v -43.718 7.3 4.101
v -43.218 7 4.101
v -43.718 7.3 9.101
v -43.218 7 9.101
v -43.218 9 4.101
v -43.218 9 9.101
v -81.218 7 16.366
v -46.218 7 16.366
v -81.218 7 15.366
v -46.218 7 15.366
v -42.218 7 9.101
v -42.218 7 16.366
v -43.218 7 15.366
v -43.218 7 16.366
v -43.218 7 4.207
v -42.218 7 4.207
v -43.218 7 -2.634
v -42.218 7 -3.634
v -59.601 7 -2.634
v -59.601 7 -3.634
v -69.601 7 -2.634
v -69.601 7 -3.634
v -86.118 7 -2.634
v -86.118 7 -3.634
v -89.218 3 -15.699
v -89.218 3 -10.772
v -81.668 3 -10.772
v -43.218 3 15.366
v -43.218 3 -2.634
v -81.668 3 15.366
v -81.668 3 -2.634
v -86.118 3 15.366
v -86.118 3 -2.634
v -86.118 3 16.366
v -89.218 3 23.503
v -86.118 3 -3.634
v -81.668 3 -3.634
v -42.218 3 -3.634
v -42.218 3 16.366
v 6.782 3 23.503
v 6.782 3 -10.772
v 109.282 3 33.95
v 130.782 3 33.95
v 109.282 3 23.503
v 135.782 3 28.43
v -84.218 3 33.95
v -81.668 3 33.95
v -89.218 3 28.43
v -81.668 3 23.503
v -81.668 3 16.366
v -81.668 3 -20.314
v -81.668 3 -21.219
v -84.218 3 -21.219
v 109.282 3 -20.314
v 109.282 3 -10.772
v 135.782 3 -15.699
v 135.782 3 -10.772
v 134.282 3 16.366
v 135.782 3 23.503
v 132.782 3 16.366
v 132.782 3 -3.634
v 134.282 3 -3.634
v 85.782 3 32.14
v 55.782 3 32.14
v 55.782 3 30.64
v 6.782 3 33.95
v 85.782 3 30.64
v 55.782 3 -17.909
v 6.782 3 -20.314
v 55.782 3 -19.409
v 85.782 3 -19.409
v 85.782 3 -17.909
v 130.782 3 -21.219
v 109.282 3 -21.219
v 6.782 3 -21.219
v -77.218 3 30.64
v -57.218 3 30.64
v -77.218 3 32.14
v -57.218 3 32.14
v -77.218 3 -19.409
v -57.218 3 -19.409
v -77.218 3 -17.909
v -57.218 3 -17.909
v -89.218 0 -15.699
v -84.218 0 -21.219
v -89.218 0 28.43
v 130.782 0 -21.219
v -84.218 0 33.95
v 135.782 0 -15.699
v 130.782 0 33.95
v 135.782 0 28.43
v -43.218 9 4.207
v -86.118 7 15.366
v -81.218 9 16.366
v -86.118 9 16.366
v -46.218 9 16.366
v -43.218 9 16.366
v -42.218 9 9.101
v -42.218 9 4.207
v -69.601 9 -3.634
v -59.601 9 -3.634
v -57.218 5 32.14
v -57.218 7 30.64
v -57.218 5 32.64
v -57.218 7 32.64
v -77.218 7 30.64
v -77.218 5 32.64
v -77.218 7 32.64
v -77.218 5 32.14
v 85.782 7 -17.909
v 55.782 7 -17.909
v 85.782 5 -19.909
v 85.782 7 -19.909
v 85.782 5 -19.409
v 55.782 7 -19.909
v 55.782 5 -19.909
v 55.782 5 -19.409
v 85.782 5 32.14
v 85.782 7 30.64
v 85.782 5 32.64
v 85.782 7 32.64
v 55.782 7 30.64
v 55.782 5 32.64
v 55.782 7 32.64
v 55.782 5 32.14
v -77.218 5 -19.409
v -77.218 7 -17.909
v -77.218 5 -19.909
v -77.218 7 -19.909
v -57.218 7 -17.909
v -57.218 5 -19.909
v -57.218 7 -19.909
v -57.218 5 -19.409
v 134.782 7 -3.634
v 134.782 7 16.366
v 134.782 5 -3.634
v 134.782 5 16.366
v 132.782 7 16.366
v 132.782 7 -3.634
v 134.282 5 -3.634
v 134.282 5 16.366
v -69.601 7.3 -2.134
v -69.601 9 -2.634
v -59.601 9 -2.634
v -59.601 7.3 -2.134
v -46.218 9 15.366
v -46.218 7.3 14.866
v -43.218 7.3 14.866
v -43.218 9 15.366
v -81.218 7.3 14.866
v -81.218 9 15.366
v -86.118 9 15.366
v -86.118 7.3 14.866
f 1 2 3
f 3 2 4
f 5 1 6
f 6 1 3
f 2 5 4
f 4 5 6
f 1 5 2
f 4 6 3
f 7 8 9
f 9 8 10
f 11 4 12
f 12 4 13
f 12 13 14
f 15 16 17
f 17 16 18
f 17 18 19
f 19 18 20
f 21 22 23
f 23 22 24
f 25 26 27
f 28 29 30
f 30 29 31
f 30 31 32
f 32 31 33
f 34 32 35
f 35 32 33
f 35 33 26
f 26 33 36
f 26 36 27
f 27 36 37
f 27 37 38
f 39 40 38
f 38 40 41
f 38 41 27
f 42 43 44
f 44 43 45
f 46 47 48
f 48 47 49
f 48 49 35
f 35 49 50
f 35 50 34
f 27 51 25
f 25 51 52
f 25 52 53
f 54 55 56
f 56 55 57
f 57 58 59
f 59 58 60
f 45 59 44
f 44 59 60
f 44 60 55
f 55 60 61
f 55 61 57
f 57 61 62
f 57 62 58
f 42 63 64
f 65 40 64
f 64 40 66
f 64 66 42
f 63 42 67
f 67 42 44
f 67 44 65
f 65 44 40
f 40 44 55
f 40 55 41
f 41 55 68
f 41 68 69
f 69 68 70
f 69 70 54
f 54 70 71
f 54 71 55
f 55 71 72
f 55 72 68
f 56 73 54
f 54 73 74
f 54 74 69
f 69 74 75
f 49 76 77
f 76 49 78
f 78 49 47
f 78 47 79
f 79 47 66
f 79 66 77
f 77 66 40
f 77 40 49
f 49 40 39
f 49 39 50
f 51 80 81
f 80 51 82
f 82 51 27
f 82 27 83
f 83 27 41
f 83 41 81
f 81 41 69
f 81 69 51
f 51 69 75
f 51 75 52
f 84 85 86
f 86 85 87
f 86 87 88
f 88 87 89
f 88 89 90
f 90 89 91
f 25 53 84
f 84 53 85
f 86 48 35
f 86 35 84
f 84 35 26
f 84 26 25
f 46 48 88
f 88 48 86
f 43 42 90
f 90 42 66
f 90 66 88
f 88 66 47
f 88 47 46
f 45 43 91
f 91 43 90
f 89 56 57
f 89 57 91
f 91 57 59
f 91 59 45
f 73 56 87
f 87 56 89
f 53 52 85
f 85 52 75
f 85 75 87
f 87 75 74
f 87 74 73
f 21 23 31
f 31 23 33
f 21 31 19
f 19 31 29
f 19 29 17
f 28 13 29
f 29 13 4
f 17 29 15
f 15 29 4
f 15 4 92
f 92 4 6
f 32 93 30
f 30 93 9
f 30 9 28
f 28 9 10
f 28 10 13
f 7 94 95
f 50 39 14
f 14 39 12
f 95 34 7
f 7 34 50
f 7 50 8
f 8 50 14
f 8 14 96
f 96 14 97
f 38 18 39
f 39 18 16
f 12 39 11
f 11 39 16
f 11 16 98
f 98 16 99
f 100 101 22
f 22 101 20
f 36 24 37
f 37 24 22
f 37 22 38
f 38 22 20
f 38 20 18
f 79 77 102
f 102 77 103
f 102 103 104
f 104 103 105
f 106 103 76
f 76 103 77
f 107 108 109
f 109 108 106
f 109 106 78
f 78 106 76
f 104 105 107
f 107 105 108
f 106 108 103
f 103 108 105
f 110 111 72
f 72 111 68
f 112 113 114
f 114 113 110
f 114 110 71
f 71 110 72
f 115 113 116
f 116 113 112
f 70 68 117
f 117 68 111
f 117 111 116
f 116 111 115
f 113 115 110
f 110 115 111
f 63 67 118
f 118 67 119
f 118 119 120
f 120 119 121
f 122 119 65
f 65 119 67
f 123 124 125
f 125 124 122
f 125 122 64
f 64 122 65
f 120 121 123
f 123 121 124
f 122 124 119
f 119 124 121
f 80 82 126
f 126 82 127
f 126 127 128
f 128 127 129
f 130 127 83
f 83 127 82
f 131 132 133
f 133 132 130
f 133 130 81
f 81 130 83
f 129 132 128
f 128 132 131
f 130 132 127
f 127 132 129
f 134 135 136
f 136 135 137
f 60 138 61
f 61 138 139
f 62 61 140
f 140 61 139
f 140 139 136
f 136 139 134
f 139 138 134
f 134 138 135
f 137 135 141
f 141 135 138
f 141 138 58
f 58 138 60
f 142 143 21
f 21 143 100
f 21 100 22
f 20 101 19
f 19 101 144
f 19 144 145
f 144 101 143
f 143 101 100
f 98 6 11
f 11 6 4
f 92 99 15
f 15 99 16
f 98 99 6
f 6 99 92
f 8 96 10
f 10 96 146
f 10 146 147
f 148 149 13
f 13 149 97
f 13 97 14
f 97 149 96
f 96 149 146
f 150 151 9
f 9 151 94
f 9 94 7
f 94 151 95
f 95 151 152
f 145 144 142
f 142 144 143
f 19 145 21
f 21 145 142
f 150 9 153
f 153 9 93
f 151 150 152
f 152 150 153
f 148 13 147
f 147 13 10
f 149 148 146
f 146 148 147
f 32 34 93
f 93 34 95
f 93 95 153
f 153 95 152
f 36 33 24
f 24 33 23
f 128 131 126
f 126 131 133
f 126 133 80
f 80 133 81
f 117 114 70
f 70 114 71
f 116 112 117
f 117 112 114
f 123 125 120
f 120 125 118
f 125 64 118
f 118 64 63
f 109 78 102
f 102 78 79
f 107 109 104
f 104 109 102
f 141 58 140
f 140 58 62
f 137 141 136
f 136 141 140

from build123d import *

# Parameters (mm, degrees)
SALIENTE_EXTRUIR1_DEPTH  = 3
CROQUIS2_W               = 2
CROQUIS2_H               = 20
CROQUIS2_W_2             = 20
CROQUIS2_H_2             = 2
CROQUIS2_W_3             = 30
SALIENTE_EXTRUIR2_DEPTH  = 4
CROQUIS3_W               = 10
CROQUIS3_H               = 1
CROQUIS3_W_2             = 1
CROQUIS3_H_2             = 4.894277734
CROQUIS3_W_3             = 3
CROQUIS3_W_4             = 5
SALIENTE_EXTRUIR3_DEPTH  = 2
SALIENTE_EXTRUIR4_DEPTH  = 10
SALIENTE_EXTRUIR8_DEPTH  = 5
SALIENTE_EXTRUIR9_DEPTH  = 5
SALIENTE_EXTRUIR10_DEPTH = 3
CROQUIS8_W               = 20
CROQUIS8_H               = 6
CORTAR_EXTRUIR1_DEPTH    = 0.1
CROQUIS10_W              = 0.5
CROQUIS10_H              = 2
CORTAR_EXTRUIR2_DEPTH    = 199.1
CROQUIS11_W              = 0.5
CROQUIS11_H              = 2
CORTAR_EXTRUIR3_DEPTH    = 199.1
CROQUIS12_W              = 0.5
CROQUIS12_H              = 2
CORTAR_EXTRUIR4_DEPTH    = 199.1


with BuildPart() as part:
    # Croquis1 → Saliente-Extruir1 (new body)
    with BuildSketch(Plane(origin=(0, 0, 0), x_dir=(1, 0, 0), z_dir=(0, 1, 0))):
        Polygon((-84.217677887, 21.218806135), (130.782322113, 21.218806135), (135.782322113, 15.698806135), (135.782322113, -28.430089815), (130.782322113, -33.950089815), (-84.217677887, -33.950089815), (-89.217677887, -28.430089815), (-89.217677887, 15.698806135), align=None)
        Polygon((-86.217677887, 14.328120868), (-86.217677887, -27.059404549), (-82.974424711, -30.639956055), (129.539068937, -30.639956055), (132.782322113, -27.059404549), (132.782322113, 14.328120868), (129.539068937, 17.908672375), (-82.974424711, 17.908672375), align=None, mode=Mode.SUBTRACT)
        Polygon((-86.217677887, 14.328120868), (-82.974424711, 17.908672375), (129.539068937, 17.908672375), (132.782322113, 14.328120868), (132.782322113, -27.059404549), (129.539068937, -30.639956055), (-82.974424711, -30.639956055), (-86.217677887, -27.059404549), align=None)
    extrude(amount=SALIENTE_EXTRUIR1_DEPTH)

    # Croquis2 → Saliente-Extruir2 (add)
    with BuildSketch(Plane(origin=(0, 3, 0), x_dir=(1, 0, 0), z_dir=(0, 1, 0))):
        Polygon((-86.217677887, 3.63435816), (-86.217677887, 2.63435816), (-43.217677887, 2.63435816), (-43.217677887, -15.36564184), (-86.217677887, -15.36564184), (-86.217677887, -16.36564184), (-42.217677887, -16.36564184), (-42.217677887, 3.63435816), align=None)
        with Locations((133.782322113, -6.36564184)):
            Rectangle(CROQUIS2_W, CROQUIS2_H)
        with Locations((-67.217677887, 18.908672375)):
            Rectangle(CROQUIS2_W_2, CROQUIS2_H_2)
        with Locations((-67.217677887, -31.639956055)):
            Rectangle(CROQUIS2_W_2, CROQUIS2_H_2)
        with Locations((70.782322113, 18.908672375)):
            Rectangle(CROQUIS2_W_3, CROQUIS2_H_2)
        with Locations((70.782322113, -31.639956055)):
            Rectangle(CROQUIS2_W_3, CROQUIS2_H_2)
    extrude(amount=SALIENTE_EXTRUIR2_DEPTH)

    # Croquis3 → Saliente-Extruir3 (add)
    with BuildSketch(Plane(origin=(0, 7, 0), x_dir=(1, 0, 0), z_dir=(0, 1, 0))):
        with Locations((-64.600820338, 3.13435816)):
            Rectangle(CROQUIS3_W, CROQUIS3_H)
        with Locations((-42.717677887, -6.653976659)):
            Rectangle(CROQUIS3_W_2, CROQUIS3_H_2)
        with Locations((-44.717677887, -15.86564184)):
            Rectangle(CROQUIS3_W_3, CROQUIS3_H)
        with Locations((-83.717677887, -15.86564184)):
            Rectangle(CROQUIS3_W_4, CROQUIS3_H)
    extrude(amount=SALIENTE_EXTRUIR3_DEPTH)

    # Croquis4 → Saliente-Extruir4 (add)
    with BuildSketch(Plane.ZY.offset(69.600820338)):
        Polygon((-2.63435816, 9), (-2.13435816, 7.3), (-2.63435816, 7), align=None)
    extrude(amount=-SALIENTE_EXTRUIR4_DEPTH)

    # Croquis6 → Saliente-Extruir9 (add)
    with BuildSketch(Plane.ZY.offset(86.217677887)):
        Polygon((15.36564184, 9), (14.86564184, 7.3), (15.36564184, 7), align=None)
    extrude(amount=-SALIENTE_EXTRUIR9_DEPTH)

    # Croquis7 → Saliente-Extruir10 (add)
    with BuildSketch(Plane.ZY.offset(46.217677887)):
        Polygon((15.36564184, 9), (14.86564184, 7.3), (15.36564184, 7), align=None)
    extrude(amount=-SALIENTE_EXTRUIR10_DEPTH)

    # Croquis8 → Cortar-Extruir1 (cut)
    with BuildSketch(Plane.ZY.offset(86.217677887)):
        with Locations((6.36564184, 6)):
            Rectangle(CROQUIS8_W, CROQUIS8_H)
    extrude(amount=-CORTAR_EXTRUIR1_DEPTH, mode=Mode.SUBTRACT)

    # Croquis10 → Cortar-Extruir2 (cut)
    with BuildSketch(Plane.ZY.offset(77.217677887)):
        with Locations((-19.658672375, 4)):
            Rectangle(CROQUIS10_W, CROQUIS10_H)
    extrude(amount=-CORTAR_EXTRUIR2_DEPTH, mode=Mode.SUBTRACT)

    # Croquis11 → Cortar-Extruir3 (cut)
    with BuildSketch(Plane.ZY.offset(77.217677887)):
        with Locations((32.389956055, 4)):
            Rectangle(CROQUIS11_W, CROQUIS11_H)
    extrude(amount=-CORTAR_EXTRUIR3_DEPTH, mode=Mode.SUBTRACT)

    # Croquis12 → Cortar-Extruir4 (cut)
    with BuildSketch(Plane.XY.offset(16.36564184)):
        with Locations((134.532322113, 4)):
            Rectangle(CROQUIS12_W, CROQUIS12_H)
    extrude(amount=-CORTAR_EXTRUIR4_DEPTH, mode=Mode.SUBTRACT)


with BuildPart() as body_2:
    # Croquis5 → Saliente-Extruir8 (new body)
    with BuildSketch(Plane.XY.offset(9.101115526)):
        Polygon((-43.217677887, 9), (-43.717677887, 7.3), (-43.217677887, 7), align=None)
    extrude(amount=-SALIENTE_EXTRUIR8_DEPTH)


solid = Compound([part.part, body_2.part])
